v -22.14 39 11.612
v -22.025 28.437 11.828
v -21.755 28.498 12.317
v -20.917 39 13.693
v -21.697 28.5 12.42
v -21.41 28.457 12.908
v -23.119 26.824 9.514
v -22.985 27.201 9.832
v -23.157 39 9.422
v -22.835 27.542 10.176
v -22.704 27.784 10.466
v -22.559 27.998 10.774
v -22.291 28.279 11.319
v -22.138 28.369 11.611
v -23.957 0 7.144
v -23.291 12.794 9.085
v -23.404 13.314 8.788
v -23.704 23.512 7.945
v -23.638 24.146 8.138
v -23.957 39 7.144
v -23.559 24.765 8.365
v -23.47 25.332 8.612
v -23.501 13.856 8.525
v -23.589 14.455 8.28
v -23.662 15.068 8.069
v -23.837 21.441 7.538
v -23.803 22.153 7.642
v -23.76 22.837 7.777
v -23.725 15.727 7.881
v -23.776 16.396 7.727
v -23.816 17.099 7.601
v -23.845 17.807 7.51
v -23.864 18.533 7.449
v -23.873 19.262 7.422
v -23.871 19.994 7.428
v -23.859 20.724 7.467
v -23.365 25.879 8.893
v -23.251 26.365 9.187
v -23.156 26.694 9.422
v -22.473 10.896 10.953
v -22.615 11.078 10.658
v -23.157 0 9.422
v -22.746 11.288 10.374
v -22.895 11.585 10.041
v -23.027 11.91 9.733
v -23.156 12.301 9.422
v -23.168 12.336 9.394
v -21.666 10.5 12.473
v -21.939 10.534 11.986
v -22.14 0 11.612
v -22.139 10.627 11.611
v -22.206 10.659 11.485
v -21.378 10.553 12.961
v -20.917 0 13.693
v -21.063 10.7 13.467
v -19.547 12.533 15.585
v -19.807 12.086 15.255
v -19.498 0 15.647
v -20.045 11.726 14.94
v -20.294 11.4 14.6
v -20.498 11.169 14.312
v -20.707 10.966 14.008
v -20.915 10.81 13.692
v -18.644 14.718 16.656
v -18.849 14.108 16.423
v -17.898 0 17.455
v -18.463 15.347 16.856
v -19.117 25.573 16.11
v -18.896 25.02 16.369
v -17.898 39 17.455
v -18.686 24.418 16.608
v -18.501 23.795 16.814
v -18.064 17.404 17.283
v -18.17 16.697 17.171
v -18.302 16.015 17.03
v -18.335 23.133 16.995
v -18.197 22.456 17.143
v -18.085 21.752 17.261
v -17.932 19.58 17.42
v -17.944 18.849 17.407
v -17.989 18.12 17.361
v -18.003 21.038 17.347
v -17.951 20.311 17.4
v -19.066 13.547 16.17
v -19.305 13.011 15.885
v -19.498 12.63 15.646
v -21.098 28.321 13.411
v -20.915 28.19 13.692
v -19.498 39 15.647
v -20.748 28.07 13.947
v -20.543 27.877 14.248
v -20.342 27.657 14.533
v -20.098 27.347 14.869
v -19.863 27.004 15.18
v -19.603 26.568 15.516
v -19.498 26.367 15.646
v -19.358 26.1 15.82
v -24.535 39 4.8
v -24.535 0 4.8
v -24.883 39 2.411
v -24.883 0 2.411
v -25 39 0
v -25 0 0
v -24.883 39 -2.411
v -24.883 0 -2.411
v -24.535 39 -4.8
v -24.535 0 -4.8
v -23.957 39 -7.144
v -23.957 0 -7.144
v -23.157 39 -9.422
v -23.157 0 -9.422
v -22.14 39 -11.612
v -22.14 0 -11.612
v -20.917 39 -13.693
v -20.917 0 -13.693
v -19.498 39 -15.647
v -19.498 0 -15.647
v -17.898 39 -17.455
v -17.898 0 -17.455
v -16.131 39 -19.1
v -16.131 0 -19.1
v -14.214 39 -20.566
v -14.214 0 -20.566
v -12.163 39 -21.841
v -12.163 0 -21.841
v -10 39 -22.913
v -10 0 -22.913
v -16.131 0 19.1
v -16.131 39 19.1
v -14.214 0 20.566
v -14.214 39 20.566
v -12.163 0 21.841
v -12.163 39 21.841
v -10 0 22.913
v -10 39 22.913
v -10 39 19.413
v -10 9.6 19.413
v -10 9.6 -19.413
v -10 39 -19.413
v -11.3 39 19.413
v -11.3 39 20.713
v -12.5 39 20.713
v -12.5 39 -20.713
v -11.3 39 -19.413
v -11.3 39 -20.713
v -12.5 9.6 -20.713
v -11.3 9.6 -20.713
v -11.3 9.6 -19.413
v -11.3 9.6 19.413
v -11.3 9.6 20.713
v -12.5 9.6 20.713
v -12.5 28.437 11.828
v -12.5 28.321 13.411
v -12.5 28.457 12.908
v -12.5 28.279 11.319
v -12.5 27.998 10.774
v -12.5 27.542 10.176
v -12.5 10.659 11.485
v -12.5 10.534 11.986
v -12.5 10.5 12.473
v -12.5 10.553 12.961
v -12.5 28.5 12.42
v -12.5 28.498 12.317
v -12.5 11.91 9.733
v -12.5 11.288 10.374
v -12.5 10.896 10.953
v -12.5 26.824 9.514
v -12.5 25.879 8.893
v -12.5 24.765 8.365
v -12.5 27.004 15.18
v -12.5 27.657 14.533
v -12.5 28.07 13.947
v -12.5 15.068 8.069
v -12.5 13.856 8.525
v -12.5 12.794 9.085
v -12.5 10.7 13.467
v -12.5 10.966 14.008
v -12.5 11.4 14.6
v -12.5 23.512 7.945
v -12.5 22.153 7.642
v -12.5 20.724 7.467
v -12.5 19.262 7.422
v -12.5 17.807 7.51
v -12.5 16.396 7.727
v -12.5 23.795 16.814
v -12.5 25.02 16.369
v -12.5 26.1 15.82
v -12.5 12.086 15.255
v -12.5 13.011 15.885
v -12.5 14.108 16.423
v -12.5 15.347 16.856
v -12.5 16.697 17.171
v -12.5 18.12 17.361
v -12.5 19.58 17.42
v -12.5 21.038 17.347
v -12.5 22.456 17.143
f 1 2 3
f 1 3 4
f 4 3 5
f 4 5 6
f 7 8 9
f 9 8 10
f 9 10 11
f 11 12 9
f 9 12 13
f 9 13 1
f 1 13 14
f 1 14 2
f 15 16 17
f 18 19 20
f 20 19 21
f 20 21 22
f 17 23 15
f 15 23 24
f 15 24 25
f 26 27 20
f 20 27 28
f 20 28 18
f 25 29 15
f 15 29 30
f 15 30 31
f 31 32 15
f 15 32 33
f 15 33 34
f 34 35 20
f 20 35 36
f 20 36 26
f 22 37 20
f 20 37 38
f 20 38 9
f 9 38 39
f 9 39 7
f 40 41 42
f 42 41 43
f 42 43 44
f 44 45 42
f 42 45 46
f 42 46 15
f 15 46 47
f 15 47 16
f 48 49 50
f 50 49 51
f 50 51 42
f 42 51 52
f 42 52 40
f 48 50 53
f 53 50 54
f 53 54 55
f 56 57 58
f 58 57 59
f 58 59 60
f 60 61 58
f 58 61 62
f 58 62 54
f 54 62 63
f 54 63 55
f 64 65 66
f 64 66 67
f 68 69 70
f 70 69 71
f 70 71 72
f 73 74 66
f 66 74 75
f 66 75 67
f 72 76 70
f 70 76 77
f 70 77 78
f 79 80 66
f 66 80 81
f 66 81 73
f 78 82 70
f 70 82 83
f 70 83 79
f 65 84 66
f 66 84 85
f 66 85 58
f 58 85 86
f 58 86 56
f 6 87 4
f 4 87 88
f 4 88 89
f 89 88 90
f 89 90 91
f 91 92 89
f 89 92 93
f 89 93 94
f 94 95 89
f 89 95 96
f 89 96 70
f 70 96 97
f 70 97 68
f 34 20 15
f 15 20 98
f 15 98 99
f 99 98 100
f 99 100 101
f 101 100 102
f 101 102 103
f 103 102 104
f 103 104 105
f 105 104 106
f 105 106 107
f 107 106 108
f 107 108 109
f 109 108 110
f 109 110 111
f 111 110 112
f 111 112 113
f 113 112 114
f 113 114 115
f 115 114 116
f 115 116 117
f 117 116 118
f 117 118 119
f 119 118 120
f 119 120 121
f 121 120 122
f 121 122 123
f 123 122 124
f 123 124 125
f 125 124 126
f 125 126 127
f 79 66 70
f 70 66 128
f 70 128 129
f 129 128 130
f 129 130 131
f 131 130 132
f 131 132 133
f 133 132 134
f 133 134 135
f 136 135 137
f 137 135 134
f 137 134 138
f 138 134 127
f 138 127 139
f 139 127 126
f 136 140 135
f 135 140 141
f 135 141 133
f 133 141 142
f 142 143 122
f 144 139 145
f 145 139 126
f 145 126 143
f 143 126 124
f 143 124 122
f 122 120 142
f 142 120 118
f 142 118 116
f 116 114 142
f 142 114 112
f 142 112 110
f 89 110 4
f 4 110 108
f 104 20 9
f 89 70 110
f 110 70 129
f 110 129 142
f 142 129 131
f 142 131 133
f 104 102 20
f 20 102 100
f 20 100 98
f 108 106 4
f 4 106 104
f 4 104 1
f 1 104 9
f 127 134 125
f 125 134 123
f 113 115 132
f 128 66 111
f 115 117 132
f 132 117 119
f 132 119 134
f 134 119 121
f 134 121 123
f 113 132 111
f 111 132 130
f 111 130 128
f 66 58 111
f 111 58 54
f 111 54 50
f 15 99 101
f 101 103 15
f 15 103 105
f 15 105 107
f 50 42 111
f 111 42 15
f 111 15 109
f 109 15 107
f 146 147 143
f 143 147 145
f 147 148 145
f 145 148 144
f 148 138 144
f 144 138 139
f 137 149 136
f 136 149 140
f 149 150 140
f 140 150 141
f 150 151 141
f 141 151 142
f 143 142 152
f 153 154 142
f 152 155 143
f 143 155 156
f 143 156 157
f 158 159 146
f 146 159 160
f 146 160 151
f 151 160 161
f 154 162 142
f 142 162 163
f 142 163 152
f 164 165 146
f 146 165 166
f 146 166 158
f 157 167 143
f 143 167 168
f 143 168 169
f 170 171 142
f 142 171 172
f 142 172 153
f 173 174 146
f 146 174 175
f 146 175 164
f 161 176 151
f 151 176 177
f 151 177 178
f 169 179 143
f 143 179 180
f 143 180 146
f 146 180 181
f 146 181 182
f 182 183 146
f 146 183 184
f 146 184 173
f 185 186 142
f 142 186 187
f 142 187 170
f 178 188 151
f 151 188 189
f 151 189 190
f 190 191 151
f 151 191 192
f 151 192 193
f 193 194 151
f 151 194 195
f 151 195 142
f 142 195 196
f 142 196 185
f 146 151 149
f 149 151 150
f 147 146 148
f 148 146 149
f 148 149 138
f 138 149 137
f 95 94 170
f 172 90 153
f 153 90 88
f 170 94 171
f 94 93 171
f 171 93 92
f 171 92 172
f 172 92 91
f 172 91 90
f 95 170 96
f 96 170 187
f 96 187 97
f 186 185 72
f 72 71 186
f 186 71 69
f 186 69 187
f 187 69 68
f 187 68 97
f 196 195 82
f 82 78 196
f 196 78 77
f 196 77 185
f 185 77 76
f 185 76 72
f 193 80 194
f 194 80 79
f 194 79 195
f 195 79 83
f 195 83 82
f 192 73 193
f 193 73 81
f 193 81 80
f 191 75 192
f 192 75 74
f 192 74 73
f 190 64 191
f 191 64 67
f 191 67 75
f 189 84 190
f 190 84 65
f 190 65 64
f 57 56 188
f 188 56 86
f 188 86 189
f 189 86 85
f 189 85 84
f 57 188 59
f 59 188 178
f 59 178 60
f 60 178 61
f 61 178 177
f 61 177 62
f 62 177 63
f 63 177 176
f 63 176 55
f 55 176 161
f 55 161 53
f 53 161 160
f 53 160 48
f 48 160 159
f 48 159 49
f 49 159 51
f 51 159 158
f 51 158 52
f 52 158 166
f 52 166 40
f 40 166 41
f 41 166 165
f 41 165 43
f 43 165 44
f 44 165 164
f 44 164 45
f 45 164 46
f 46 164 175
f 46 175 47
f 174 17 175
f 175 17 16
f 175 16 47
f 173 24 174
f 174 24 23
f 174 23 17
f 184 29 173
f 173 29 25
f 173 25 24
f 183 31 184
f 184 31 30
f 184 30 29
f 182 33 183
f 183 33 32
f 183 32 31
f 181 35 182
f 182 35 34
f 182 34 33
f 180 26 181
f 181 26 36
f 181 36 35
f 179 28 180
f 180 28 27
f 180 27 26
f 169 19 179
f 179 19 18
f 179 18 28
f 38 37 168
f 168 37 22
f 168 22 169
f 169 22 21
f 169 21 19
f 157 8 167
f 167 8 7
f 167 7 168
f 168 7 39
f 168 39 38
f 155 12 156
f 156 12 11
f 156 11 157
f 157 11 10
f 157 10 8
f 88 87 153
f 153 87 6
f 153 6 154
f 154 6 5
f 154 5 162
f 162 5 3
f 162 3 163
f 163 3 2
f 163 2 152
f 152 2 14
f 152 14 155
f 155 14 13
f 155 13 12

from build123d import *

# Parameters (mm, degrees)
BOSS_EXTRUDE1_DEPTH     = 39
CUT_EXTRUDE1_DEPTH      = 29.4
SKETCH3_RX              = 9
SKETCH3_RY              = 5
CUT_EXTRUDE2_DEPTH      = 3.5
CUT_EXTRUDE2_DEPTH_BACK = 13.5


with BuildPart() as part:
    # Sketch1 → Boss-Extrude1 (new body)
    with BuildSketch(Plane(origin=(0, 0, 0), x_dir=(1, 0, 0), z_dir=(0, 1, 0))):
        with BuildLine():
            Line((-10, 22.912878475), (-10, -22.912878475))
            ThreePointArc((-10, -22.912878475), (-25, 0), (-10, 22.912878475))
        make_face()
    extrude(amount=BOSS_EXTRUDE1_DEPTH)

    # Sketch2 → Cut-Extrude1 (cut)
    with BuildSketch(Plane(origin=(0, 39, 0), x_dir=(1, 0, 0), z_dir=(0, 1, 0))):
        Polygon((-10, 19.412878475), (-11.3, 19.412878475), (-11.3, 20.712878475), (-12.5, 20.712878475), (-12.5, -20.712878475), (-11.3, -20.712878475), (-11.3, -19.412878475), (-10, -19.412878475), align=None)
    extrude(amount=-CUT_EXTRUDE1_DEPTH, mode=Mode.SUBTRACT)

    # Sketch3 → Cut-Extrude2 (cut, two sides)
    with BuildSketch(Plane(origin=(-12.5, 0, 0), x_dir=(0, 0, -1), z_dir=(1, 0, 0))) as cut_extrude2_sk:
        with Locations(Location((-12.420207371, 19.5), (0, 0, 90))):
            Ellipse(SKETCH3_RX, SKETCH3_RY)
    extrude(amount=CUT_EXTRUDE2_DEPTH, mode=Mode.SUBTRACT)
    extrude(cut_extrude2_sk.sketch, amount=-CUT_EXTRUDE2_DEPTH_BACK, mode=Mode.SUBTRACT)


solid = part.part
